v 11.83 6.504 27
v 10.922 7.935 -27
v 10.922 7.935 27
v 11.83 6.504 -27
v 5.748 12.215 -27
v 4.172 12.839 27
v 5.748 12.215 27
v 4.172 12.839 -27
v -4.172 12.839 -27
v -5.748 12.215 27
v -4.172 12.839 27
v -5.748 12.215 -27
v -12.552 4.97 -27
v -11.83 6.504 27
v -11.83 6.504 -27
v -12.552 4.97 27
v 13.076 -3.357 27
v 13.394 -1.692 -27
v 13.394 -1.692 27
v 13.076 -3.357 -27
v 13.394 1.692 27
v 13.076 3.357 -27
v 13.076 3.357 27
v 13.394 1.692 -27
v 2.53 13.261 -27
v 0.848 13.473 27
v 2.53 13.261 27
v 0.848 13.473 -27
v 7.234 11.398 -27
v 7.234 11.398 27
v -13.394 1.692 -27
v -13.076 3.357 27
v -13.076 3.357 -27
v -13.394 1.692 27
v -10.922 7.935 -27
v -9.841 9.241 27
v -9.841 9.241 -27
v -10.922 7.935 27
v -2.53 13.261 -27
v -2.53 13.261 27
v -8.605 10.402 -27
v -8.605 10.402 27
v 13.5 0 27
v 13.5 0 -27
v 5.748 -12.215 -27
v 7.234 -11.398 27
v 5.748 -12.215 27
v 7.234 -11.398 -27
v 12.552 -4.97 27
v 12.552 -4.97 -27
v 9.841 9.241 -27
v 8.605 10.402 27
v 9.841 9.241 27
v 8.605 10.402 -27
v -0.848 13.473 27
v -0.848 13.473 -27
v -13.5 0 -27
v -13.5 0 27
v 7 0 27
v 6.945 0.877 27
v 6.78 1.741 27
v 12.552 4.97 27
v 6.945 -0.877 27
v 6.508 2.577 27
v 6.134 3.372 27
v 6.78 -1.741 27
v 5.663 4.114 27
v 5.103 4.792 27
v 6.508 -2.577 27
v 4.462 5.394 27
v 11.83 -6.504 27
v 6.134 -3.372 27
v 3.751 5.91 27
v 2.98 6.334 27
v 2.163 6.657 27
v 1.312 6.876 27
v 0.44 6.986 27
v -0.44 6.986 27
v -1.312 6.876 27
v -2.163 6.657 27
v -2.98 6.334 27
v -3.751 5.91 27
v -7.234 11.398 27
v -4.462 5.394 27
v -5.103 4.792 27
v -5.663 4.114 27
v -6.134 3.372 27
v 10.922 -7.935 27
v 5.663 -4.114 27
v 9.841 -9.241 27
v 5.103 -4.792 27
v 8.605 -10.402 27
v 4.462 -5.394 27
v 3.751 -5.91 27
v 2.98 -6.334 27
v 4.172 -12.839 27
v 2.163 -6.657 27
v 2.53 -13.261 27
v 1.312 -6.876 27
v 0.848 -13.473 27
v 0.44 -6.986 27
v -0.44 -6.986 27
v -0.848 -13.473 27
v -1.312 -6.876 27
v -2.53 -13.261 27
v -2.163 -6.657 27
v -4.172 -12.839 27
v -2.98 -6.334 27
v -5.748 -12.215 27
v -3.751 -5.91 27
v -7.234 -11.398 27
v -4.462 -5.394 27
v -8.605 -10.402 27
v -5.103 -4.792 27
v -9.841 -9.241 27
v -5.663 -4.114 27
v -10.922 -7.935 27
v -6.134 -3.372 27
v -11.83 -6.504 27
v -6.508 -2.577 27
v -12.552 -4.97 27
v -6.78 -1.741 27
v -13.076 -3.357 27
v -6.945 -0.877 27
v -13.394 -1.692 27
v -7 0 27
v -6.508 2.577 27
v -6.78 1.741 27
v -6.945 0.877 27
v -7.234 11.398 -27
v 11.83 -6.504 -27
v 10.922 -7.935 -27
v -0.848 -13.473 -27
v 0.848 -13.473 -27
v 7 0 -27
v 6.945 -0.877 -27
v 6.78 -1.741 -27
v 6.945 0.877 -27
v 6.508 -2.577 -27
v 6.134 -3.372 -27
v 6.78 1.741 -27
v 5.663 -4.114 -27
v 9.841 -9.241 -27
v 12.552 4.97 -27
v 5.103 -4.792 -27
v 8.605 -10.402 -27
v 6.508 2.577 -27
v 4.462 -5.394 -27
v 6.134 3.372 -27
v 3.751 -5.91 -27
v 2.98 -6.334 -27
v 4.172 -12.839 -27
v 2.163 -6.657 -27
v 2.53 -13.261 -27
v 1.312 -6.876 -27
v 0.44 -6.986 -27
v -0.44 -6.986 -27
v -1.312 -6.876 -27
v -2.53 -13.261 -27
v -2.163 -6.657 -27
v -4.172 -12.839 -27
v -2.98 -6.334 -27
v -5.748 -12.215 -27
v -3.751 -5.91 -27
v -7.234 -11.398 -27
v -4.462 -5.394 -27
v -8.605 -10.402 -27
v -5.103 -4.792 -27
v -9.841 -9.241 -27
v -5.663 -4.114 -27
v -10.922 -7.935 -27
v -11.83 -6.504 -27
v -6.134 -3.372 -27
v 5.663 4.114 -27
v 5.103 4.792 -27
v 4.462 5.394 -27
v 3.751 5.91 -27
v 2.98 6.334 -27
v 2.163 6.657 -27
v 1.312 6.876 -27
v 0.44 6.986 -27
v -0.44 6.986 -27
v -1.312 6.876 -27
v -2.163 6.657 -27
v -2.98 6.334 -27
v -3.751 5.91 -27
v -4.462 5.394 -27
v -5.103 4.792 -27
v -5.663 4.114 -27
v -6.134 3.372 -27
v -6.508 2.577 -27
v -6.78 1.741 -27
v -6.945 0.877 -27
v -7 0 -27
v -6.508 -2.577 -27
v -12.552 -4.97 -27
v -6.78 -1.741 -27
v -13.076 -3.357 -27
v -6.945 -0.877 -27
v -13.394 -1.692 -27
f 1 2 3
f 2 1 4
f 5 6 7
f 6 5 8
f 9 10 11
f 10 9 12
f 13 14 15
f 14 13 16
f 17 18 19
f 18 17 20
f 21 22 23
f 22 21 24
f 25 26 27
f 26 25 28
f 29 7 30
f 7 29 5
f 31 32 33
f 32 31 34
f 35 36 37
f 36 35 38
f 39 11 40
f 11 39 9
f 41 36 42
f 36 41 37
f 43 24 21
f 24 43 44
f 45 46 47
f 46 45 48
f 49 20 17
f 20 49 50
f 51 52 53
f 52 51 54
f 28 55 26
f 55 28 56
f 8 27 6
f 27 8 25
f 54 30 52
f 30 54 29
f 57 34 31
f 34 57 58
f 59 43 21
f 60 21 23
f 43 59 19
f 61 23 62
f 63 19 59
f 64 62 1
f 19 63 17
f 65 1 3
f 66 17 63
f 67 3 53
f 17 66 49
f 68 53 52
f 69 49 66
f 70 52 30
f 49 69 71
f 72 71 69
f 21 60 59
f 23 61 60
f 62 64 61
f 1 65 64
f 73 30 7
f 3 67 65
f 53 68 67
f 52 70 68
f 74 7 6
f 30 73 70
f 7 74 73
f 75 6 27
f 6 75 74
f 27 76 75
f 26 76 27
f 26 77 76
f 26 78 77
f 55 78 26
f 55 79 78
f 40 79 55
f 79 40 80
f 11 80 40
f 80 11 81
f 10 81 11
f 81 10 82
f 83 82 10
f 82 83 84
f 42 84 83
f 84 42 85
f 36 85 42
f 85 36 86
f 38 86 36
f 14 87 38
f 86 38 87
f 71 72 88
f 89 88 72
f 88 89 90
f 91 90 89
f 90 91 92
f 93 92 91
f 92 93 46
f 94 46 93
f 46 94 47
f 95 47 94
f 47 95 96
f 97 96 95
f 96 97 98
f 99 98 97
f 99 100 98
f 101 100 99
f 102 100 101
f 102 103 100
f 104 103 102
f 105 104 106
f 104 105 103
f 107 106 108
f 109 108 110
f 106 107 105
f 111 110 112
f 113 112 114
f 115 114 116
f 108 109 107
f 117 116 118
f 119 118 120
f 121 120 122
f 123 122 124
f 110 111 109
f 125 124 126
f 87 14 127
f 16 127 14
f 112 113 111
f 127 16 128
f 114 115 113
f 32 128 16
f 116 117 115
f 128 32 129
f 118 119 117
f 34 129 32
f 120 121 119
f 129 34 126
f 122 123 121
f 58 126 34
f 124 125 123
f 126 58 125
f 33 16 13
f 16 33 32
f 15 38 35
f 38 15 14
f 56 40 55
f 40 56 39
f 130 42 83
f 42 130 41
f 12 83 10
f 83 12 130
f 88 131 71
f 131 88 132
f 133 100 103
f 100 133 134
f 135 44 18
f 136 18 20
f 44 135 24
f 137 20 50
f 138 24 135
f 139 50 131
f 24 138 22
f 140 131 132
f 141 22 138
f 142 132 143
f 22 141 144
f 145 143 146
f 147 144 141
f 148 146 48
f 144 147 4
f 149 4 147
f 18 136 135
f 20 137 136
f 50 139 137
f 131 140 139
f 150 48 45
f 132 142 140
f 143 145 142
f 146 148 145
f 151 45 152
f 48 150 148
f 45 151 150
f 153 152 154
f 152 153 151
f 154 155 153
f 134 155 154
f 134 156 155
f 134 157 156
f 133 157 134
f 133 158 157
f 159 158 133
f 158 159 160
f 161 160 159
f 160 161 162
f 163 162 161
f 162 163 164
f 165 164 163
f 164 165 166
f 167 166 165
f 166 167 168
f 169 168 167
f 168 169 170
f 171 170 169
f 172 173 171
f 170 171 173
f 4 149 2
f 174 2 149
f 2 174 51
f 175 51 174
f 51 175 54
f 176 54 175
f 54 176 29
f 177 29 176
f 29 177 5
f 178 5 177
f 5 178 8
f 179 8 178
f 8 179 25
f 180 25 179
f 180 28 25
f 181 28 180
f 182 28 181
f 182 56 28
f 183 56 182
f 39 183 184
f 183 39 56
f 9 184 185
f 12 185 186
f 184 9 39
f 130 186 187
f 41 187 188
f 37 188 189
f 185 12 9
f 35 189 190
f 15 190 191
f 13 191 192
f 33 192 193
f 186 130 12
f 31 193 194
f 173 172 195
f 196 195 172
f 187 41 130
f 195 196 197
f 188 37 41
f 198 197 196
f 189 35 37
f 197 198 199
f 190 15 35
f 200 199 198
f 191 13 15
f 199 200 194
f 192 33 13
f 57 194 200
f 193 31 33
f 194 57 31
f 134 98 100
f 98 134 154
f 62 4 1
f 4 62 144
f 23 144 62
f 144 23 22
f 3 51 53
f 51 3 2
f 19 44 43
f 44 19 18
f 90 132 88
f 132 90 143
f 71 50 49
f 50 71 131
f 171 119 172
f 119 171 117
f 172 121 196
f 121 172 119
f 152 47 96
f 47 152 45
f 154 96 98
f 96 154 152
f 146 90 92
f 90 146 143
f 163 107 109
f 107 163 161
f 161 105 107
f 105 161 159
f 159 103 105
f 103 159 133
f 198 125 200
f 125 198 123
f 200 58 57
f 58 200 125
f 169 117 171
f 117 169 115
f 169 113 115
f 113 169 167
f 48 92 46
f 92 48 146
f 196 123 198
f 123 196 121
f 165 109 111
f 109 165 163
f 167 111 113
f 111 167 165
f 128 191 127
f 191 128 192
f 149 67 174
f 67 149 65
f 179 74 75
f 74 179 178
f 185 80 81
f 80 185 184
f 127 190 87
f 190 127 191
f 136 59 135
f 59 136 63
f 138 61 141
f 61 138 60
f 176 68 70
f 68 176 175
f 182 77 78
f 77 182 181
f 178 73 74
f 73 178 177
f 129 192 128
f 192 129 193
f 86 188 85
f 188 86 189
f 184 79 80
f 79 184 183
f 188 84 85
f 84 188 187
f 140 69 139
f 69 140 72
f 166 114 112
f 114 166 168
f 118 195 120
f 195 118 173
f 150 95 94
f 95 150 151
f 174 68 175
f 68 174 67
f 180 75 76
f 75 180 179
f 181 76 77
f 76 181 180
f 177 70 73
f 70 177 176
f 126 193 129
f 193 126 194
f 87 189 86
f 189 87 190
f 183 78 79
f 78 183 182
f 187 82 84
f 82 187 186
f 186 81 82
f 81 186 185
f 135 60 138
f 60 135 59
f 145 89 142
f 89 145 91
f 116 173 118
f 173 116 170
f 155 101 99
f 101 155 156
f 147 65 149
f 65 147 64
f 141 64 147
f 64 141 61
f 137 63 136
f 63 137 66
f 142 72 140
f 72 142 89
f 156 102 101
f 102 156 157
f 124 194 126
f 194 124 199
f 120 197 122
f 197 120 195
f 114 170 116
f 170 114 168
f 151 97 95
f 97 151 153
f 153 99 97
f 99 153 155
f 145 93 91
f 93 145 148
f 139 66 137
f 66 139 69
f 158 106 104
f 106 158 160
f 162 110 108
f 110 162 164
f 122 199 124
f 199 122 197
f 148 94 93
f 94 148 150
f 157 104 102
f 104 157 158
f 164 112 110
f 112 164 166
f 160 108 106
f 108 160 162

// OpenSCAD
$fn = 50;


difference() {
	union() {
		translate(v = [0, 0, -27.0000000000]) {
			cylinder(h = 54, r = 13.5000000000);
		}
	}
	union() {
		translate(v = [0, 0, -100.0000000000]) {
			cylinder(h = 200, r = 7);
		}
	}
}
